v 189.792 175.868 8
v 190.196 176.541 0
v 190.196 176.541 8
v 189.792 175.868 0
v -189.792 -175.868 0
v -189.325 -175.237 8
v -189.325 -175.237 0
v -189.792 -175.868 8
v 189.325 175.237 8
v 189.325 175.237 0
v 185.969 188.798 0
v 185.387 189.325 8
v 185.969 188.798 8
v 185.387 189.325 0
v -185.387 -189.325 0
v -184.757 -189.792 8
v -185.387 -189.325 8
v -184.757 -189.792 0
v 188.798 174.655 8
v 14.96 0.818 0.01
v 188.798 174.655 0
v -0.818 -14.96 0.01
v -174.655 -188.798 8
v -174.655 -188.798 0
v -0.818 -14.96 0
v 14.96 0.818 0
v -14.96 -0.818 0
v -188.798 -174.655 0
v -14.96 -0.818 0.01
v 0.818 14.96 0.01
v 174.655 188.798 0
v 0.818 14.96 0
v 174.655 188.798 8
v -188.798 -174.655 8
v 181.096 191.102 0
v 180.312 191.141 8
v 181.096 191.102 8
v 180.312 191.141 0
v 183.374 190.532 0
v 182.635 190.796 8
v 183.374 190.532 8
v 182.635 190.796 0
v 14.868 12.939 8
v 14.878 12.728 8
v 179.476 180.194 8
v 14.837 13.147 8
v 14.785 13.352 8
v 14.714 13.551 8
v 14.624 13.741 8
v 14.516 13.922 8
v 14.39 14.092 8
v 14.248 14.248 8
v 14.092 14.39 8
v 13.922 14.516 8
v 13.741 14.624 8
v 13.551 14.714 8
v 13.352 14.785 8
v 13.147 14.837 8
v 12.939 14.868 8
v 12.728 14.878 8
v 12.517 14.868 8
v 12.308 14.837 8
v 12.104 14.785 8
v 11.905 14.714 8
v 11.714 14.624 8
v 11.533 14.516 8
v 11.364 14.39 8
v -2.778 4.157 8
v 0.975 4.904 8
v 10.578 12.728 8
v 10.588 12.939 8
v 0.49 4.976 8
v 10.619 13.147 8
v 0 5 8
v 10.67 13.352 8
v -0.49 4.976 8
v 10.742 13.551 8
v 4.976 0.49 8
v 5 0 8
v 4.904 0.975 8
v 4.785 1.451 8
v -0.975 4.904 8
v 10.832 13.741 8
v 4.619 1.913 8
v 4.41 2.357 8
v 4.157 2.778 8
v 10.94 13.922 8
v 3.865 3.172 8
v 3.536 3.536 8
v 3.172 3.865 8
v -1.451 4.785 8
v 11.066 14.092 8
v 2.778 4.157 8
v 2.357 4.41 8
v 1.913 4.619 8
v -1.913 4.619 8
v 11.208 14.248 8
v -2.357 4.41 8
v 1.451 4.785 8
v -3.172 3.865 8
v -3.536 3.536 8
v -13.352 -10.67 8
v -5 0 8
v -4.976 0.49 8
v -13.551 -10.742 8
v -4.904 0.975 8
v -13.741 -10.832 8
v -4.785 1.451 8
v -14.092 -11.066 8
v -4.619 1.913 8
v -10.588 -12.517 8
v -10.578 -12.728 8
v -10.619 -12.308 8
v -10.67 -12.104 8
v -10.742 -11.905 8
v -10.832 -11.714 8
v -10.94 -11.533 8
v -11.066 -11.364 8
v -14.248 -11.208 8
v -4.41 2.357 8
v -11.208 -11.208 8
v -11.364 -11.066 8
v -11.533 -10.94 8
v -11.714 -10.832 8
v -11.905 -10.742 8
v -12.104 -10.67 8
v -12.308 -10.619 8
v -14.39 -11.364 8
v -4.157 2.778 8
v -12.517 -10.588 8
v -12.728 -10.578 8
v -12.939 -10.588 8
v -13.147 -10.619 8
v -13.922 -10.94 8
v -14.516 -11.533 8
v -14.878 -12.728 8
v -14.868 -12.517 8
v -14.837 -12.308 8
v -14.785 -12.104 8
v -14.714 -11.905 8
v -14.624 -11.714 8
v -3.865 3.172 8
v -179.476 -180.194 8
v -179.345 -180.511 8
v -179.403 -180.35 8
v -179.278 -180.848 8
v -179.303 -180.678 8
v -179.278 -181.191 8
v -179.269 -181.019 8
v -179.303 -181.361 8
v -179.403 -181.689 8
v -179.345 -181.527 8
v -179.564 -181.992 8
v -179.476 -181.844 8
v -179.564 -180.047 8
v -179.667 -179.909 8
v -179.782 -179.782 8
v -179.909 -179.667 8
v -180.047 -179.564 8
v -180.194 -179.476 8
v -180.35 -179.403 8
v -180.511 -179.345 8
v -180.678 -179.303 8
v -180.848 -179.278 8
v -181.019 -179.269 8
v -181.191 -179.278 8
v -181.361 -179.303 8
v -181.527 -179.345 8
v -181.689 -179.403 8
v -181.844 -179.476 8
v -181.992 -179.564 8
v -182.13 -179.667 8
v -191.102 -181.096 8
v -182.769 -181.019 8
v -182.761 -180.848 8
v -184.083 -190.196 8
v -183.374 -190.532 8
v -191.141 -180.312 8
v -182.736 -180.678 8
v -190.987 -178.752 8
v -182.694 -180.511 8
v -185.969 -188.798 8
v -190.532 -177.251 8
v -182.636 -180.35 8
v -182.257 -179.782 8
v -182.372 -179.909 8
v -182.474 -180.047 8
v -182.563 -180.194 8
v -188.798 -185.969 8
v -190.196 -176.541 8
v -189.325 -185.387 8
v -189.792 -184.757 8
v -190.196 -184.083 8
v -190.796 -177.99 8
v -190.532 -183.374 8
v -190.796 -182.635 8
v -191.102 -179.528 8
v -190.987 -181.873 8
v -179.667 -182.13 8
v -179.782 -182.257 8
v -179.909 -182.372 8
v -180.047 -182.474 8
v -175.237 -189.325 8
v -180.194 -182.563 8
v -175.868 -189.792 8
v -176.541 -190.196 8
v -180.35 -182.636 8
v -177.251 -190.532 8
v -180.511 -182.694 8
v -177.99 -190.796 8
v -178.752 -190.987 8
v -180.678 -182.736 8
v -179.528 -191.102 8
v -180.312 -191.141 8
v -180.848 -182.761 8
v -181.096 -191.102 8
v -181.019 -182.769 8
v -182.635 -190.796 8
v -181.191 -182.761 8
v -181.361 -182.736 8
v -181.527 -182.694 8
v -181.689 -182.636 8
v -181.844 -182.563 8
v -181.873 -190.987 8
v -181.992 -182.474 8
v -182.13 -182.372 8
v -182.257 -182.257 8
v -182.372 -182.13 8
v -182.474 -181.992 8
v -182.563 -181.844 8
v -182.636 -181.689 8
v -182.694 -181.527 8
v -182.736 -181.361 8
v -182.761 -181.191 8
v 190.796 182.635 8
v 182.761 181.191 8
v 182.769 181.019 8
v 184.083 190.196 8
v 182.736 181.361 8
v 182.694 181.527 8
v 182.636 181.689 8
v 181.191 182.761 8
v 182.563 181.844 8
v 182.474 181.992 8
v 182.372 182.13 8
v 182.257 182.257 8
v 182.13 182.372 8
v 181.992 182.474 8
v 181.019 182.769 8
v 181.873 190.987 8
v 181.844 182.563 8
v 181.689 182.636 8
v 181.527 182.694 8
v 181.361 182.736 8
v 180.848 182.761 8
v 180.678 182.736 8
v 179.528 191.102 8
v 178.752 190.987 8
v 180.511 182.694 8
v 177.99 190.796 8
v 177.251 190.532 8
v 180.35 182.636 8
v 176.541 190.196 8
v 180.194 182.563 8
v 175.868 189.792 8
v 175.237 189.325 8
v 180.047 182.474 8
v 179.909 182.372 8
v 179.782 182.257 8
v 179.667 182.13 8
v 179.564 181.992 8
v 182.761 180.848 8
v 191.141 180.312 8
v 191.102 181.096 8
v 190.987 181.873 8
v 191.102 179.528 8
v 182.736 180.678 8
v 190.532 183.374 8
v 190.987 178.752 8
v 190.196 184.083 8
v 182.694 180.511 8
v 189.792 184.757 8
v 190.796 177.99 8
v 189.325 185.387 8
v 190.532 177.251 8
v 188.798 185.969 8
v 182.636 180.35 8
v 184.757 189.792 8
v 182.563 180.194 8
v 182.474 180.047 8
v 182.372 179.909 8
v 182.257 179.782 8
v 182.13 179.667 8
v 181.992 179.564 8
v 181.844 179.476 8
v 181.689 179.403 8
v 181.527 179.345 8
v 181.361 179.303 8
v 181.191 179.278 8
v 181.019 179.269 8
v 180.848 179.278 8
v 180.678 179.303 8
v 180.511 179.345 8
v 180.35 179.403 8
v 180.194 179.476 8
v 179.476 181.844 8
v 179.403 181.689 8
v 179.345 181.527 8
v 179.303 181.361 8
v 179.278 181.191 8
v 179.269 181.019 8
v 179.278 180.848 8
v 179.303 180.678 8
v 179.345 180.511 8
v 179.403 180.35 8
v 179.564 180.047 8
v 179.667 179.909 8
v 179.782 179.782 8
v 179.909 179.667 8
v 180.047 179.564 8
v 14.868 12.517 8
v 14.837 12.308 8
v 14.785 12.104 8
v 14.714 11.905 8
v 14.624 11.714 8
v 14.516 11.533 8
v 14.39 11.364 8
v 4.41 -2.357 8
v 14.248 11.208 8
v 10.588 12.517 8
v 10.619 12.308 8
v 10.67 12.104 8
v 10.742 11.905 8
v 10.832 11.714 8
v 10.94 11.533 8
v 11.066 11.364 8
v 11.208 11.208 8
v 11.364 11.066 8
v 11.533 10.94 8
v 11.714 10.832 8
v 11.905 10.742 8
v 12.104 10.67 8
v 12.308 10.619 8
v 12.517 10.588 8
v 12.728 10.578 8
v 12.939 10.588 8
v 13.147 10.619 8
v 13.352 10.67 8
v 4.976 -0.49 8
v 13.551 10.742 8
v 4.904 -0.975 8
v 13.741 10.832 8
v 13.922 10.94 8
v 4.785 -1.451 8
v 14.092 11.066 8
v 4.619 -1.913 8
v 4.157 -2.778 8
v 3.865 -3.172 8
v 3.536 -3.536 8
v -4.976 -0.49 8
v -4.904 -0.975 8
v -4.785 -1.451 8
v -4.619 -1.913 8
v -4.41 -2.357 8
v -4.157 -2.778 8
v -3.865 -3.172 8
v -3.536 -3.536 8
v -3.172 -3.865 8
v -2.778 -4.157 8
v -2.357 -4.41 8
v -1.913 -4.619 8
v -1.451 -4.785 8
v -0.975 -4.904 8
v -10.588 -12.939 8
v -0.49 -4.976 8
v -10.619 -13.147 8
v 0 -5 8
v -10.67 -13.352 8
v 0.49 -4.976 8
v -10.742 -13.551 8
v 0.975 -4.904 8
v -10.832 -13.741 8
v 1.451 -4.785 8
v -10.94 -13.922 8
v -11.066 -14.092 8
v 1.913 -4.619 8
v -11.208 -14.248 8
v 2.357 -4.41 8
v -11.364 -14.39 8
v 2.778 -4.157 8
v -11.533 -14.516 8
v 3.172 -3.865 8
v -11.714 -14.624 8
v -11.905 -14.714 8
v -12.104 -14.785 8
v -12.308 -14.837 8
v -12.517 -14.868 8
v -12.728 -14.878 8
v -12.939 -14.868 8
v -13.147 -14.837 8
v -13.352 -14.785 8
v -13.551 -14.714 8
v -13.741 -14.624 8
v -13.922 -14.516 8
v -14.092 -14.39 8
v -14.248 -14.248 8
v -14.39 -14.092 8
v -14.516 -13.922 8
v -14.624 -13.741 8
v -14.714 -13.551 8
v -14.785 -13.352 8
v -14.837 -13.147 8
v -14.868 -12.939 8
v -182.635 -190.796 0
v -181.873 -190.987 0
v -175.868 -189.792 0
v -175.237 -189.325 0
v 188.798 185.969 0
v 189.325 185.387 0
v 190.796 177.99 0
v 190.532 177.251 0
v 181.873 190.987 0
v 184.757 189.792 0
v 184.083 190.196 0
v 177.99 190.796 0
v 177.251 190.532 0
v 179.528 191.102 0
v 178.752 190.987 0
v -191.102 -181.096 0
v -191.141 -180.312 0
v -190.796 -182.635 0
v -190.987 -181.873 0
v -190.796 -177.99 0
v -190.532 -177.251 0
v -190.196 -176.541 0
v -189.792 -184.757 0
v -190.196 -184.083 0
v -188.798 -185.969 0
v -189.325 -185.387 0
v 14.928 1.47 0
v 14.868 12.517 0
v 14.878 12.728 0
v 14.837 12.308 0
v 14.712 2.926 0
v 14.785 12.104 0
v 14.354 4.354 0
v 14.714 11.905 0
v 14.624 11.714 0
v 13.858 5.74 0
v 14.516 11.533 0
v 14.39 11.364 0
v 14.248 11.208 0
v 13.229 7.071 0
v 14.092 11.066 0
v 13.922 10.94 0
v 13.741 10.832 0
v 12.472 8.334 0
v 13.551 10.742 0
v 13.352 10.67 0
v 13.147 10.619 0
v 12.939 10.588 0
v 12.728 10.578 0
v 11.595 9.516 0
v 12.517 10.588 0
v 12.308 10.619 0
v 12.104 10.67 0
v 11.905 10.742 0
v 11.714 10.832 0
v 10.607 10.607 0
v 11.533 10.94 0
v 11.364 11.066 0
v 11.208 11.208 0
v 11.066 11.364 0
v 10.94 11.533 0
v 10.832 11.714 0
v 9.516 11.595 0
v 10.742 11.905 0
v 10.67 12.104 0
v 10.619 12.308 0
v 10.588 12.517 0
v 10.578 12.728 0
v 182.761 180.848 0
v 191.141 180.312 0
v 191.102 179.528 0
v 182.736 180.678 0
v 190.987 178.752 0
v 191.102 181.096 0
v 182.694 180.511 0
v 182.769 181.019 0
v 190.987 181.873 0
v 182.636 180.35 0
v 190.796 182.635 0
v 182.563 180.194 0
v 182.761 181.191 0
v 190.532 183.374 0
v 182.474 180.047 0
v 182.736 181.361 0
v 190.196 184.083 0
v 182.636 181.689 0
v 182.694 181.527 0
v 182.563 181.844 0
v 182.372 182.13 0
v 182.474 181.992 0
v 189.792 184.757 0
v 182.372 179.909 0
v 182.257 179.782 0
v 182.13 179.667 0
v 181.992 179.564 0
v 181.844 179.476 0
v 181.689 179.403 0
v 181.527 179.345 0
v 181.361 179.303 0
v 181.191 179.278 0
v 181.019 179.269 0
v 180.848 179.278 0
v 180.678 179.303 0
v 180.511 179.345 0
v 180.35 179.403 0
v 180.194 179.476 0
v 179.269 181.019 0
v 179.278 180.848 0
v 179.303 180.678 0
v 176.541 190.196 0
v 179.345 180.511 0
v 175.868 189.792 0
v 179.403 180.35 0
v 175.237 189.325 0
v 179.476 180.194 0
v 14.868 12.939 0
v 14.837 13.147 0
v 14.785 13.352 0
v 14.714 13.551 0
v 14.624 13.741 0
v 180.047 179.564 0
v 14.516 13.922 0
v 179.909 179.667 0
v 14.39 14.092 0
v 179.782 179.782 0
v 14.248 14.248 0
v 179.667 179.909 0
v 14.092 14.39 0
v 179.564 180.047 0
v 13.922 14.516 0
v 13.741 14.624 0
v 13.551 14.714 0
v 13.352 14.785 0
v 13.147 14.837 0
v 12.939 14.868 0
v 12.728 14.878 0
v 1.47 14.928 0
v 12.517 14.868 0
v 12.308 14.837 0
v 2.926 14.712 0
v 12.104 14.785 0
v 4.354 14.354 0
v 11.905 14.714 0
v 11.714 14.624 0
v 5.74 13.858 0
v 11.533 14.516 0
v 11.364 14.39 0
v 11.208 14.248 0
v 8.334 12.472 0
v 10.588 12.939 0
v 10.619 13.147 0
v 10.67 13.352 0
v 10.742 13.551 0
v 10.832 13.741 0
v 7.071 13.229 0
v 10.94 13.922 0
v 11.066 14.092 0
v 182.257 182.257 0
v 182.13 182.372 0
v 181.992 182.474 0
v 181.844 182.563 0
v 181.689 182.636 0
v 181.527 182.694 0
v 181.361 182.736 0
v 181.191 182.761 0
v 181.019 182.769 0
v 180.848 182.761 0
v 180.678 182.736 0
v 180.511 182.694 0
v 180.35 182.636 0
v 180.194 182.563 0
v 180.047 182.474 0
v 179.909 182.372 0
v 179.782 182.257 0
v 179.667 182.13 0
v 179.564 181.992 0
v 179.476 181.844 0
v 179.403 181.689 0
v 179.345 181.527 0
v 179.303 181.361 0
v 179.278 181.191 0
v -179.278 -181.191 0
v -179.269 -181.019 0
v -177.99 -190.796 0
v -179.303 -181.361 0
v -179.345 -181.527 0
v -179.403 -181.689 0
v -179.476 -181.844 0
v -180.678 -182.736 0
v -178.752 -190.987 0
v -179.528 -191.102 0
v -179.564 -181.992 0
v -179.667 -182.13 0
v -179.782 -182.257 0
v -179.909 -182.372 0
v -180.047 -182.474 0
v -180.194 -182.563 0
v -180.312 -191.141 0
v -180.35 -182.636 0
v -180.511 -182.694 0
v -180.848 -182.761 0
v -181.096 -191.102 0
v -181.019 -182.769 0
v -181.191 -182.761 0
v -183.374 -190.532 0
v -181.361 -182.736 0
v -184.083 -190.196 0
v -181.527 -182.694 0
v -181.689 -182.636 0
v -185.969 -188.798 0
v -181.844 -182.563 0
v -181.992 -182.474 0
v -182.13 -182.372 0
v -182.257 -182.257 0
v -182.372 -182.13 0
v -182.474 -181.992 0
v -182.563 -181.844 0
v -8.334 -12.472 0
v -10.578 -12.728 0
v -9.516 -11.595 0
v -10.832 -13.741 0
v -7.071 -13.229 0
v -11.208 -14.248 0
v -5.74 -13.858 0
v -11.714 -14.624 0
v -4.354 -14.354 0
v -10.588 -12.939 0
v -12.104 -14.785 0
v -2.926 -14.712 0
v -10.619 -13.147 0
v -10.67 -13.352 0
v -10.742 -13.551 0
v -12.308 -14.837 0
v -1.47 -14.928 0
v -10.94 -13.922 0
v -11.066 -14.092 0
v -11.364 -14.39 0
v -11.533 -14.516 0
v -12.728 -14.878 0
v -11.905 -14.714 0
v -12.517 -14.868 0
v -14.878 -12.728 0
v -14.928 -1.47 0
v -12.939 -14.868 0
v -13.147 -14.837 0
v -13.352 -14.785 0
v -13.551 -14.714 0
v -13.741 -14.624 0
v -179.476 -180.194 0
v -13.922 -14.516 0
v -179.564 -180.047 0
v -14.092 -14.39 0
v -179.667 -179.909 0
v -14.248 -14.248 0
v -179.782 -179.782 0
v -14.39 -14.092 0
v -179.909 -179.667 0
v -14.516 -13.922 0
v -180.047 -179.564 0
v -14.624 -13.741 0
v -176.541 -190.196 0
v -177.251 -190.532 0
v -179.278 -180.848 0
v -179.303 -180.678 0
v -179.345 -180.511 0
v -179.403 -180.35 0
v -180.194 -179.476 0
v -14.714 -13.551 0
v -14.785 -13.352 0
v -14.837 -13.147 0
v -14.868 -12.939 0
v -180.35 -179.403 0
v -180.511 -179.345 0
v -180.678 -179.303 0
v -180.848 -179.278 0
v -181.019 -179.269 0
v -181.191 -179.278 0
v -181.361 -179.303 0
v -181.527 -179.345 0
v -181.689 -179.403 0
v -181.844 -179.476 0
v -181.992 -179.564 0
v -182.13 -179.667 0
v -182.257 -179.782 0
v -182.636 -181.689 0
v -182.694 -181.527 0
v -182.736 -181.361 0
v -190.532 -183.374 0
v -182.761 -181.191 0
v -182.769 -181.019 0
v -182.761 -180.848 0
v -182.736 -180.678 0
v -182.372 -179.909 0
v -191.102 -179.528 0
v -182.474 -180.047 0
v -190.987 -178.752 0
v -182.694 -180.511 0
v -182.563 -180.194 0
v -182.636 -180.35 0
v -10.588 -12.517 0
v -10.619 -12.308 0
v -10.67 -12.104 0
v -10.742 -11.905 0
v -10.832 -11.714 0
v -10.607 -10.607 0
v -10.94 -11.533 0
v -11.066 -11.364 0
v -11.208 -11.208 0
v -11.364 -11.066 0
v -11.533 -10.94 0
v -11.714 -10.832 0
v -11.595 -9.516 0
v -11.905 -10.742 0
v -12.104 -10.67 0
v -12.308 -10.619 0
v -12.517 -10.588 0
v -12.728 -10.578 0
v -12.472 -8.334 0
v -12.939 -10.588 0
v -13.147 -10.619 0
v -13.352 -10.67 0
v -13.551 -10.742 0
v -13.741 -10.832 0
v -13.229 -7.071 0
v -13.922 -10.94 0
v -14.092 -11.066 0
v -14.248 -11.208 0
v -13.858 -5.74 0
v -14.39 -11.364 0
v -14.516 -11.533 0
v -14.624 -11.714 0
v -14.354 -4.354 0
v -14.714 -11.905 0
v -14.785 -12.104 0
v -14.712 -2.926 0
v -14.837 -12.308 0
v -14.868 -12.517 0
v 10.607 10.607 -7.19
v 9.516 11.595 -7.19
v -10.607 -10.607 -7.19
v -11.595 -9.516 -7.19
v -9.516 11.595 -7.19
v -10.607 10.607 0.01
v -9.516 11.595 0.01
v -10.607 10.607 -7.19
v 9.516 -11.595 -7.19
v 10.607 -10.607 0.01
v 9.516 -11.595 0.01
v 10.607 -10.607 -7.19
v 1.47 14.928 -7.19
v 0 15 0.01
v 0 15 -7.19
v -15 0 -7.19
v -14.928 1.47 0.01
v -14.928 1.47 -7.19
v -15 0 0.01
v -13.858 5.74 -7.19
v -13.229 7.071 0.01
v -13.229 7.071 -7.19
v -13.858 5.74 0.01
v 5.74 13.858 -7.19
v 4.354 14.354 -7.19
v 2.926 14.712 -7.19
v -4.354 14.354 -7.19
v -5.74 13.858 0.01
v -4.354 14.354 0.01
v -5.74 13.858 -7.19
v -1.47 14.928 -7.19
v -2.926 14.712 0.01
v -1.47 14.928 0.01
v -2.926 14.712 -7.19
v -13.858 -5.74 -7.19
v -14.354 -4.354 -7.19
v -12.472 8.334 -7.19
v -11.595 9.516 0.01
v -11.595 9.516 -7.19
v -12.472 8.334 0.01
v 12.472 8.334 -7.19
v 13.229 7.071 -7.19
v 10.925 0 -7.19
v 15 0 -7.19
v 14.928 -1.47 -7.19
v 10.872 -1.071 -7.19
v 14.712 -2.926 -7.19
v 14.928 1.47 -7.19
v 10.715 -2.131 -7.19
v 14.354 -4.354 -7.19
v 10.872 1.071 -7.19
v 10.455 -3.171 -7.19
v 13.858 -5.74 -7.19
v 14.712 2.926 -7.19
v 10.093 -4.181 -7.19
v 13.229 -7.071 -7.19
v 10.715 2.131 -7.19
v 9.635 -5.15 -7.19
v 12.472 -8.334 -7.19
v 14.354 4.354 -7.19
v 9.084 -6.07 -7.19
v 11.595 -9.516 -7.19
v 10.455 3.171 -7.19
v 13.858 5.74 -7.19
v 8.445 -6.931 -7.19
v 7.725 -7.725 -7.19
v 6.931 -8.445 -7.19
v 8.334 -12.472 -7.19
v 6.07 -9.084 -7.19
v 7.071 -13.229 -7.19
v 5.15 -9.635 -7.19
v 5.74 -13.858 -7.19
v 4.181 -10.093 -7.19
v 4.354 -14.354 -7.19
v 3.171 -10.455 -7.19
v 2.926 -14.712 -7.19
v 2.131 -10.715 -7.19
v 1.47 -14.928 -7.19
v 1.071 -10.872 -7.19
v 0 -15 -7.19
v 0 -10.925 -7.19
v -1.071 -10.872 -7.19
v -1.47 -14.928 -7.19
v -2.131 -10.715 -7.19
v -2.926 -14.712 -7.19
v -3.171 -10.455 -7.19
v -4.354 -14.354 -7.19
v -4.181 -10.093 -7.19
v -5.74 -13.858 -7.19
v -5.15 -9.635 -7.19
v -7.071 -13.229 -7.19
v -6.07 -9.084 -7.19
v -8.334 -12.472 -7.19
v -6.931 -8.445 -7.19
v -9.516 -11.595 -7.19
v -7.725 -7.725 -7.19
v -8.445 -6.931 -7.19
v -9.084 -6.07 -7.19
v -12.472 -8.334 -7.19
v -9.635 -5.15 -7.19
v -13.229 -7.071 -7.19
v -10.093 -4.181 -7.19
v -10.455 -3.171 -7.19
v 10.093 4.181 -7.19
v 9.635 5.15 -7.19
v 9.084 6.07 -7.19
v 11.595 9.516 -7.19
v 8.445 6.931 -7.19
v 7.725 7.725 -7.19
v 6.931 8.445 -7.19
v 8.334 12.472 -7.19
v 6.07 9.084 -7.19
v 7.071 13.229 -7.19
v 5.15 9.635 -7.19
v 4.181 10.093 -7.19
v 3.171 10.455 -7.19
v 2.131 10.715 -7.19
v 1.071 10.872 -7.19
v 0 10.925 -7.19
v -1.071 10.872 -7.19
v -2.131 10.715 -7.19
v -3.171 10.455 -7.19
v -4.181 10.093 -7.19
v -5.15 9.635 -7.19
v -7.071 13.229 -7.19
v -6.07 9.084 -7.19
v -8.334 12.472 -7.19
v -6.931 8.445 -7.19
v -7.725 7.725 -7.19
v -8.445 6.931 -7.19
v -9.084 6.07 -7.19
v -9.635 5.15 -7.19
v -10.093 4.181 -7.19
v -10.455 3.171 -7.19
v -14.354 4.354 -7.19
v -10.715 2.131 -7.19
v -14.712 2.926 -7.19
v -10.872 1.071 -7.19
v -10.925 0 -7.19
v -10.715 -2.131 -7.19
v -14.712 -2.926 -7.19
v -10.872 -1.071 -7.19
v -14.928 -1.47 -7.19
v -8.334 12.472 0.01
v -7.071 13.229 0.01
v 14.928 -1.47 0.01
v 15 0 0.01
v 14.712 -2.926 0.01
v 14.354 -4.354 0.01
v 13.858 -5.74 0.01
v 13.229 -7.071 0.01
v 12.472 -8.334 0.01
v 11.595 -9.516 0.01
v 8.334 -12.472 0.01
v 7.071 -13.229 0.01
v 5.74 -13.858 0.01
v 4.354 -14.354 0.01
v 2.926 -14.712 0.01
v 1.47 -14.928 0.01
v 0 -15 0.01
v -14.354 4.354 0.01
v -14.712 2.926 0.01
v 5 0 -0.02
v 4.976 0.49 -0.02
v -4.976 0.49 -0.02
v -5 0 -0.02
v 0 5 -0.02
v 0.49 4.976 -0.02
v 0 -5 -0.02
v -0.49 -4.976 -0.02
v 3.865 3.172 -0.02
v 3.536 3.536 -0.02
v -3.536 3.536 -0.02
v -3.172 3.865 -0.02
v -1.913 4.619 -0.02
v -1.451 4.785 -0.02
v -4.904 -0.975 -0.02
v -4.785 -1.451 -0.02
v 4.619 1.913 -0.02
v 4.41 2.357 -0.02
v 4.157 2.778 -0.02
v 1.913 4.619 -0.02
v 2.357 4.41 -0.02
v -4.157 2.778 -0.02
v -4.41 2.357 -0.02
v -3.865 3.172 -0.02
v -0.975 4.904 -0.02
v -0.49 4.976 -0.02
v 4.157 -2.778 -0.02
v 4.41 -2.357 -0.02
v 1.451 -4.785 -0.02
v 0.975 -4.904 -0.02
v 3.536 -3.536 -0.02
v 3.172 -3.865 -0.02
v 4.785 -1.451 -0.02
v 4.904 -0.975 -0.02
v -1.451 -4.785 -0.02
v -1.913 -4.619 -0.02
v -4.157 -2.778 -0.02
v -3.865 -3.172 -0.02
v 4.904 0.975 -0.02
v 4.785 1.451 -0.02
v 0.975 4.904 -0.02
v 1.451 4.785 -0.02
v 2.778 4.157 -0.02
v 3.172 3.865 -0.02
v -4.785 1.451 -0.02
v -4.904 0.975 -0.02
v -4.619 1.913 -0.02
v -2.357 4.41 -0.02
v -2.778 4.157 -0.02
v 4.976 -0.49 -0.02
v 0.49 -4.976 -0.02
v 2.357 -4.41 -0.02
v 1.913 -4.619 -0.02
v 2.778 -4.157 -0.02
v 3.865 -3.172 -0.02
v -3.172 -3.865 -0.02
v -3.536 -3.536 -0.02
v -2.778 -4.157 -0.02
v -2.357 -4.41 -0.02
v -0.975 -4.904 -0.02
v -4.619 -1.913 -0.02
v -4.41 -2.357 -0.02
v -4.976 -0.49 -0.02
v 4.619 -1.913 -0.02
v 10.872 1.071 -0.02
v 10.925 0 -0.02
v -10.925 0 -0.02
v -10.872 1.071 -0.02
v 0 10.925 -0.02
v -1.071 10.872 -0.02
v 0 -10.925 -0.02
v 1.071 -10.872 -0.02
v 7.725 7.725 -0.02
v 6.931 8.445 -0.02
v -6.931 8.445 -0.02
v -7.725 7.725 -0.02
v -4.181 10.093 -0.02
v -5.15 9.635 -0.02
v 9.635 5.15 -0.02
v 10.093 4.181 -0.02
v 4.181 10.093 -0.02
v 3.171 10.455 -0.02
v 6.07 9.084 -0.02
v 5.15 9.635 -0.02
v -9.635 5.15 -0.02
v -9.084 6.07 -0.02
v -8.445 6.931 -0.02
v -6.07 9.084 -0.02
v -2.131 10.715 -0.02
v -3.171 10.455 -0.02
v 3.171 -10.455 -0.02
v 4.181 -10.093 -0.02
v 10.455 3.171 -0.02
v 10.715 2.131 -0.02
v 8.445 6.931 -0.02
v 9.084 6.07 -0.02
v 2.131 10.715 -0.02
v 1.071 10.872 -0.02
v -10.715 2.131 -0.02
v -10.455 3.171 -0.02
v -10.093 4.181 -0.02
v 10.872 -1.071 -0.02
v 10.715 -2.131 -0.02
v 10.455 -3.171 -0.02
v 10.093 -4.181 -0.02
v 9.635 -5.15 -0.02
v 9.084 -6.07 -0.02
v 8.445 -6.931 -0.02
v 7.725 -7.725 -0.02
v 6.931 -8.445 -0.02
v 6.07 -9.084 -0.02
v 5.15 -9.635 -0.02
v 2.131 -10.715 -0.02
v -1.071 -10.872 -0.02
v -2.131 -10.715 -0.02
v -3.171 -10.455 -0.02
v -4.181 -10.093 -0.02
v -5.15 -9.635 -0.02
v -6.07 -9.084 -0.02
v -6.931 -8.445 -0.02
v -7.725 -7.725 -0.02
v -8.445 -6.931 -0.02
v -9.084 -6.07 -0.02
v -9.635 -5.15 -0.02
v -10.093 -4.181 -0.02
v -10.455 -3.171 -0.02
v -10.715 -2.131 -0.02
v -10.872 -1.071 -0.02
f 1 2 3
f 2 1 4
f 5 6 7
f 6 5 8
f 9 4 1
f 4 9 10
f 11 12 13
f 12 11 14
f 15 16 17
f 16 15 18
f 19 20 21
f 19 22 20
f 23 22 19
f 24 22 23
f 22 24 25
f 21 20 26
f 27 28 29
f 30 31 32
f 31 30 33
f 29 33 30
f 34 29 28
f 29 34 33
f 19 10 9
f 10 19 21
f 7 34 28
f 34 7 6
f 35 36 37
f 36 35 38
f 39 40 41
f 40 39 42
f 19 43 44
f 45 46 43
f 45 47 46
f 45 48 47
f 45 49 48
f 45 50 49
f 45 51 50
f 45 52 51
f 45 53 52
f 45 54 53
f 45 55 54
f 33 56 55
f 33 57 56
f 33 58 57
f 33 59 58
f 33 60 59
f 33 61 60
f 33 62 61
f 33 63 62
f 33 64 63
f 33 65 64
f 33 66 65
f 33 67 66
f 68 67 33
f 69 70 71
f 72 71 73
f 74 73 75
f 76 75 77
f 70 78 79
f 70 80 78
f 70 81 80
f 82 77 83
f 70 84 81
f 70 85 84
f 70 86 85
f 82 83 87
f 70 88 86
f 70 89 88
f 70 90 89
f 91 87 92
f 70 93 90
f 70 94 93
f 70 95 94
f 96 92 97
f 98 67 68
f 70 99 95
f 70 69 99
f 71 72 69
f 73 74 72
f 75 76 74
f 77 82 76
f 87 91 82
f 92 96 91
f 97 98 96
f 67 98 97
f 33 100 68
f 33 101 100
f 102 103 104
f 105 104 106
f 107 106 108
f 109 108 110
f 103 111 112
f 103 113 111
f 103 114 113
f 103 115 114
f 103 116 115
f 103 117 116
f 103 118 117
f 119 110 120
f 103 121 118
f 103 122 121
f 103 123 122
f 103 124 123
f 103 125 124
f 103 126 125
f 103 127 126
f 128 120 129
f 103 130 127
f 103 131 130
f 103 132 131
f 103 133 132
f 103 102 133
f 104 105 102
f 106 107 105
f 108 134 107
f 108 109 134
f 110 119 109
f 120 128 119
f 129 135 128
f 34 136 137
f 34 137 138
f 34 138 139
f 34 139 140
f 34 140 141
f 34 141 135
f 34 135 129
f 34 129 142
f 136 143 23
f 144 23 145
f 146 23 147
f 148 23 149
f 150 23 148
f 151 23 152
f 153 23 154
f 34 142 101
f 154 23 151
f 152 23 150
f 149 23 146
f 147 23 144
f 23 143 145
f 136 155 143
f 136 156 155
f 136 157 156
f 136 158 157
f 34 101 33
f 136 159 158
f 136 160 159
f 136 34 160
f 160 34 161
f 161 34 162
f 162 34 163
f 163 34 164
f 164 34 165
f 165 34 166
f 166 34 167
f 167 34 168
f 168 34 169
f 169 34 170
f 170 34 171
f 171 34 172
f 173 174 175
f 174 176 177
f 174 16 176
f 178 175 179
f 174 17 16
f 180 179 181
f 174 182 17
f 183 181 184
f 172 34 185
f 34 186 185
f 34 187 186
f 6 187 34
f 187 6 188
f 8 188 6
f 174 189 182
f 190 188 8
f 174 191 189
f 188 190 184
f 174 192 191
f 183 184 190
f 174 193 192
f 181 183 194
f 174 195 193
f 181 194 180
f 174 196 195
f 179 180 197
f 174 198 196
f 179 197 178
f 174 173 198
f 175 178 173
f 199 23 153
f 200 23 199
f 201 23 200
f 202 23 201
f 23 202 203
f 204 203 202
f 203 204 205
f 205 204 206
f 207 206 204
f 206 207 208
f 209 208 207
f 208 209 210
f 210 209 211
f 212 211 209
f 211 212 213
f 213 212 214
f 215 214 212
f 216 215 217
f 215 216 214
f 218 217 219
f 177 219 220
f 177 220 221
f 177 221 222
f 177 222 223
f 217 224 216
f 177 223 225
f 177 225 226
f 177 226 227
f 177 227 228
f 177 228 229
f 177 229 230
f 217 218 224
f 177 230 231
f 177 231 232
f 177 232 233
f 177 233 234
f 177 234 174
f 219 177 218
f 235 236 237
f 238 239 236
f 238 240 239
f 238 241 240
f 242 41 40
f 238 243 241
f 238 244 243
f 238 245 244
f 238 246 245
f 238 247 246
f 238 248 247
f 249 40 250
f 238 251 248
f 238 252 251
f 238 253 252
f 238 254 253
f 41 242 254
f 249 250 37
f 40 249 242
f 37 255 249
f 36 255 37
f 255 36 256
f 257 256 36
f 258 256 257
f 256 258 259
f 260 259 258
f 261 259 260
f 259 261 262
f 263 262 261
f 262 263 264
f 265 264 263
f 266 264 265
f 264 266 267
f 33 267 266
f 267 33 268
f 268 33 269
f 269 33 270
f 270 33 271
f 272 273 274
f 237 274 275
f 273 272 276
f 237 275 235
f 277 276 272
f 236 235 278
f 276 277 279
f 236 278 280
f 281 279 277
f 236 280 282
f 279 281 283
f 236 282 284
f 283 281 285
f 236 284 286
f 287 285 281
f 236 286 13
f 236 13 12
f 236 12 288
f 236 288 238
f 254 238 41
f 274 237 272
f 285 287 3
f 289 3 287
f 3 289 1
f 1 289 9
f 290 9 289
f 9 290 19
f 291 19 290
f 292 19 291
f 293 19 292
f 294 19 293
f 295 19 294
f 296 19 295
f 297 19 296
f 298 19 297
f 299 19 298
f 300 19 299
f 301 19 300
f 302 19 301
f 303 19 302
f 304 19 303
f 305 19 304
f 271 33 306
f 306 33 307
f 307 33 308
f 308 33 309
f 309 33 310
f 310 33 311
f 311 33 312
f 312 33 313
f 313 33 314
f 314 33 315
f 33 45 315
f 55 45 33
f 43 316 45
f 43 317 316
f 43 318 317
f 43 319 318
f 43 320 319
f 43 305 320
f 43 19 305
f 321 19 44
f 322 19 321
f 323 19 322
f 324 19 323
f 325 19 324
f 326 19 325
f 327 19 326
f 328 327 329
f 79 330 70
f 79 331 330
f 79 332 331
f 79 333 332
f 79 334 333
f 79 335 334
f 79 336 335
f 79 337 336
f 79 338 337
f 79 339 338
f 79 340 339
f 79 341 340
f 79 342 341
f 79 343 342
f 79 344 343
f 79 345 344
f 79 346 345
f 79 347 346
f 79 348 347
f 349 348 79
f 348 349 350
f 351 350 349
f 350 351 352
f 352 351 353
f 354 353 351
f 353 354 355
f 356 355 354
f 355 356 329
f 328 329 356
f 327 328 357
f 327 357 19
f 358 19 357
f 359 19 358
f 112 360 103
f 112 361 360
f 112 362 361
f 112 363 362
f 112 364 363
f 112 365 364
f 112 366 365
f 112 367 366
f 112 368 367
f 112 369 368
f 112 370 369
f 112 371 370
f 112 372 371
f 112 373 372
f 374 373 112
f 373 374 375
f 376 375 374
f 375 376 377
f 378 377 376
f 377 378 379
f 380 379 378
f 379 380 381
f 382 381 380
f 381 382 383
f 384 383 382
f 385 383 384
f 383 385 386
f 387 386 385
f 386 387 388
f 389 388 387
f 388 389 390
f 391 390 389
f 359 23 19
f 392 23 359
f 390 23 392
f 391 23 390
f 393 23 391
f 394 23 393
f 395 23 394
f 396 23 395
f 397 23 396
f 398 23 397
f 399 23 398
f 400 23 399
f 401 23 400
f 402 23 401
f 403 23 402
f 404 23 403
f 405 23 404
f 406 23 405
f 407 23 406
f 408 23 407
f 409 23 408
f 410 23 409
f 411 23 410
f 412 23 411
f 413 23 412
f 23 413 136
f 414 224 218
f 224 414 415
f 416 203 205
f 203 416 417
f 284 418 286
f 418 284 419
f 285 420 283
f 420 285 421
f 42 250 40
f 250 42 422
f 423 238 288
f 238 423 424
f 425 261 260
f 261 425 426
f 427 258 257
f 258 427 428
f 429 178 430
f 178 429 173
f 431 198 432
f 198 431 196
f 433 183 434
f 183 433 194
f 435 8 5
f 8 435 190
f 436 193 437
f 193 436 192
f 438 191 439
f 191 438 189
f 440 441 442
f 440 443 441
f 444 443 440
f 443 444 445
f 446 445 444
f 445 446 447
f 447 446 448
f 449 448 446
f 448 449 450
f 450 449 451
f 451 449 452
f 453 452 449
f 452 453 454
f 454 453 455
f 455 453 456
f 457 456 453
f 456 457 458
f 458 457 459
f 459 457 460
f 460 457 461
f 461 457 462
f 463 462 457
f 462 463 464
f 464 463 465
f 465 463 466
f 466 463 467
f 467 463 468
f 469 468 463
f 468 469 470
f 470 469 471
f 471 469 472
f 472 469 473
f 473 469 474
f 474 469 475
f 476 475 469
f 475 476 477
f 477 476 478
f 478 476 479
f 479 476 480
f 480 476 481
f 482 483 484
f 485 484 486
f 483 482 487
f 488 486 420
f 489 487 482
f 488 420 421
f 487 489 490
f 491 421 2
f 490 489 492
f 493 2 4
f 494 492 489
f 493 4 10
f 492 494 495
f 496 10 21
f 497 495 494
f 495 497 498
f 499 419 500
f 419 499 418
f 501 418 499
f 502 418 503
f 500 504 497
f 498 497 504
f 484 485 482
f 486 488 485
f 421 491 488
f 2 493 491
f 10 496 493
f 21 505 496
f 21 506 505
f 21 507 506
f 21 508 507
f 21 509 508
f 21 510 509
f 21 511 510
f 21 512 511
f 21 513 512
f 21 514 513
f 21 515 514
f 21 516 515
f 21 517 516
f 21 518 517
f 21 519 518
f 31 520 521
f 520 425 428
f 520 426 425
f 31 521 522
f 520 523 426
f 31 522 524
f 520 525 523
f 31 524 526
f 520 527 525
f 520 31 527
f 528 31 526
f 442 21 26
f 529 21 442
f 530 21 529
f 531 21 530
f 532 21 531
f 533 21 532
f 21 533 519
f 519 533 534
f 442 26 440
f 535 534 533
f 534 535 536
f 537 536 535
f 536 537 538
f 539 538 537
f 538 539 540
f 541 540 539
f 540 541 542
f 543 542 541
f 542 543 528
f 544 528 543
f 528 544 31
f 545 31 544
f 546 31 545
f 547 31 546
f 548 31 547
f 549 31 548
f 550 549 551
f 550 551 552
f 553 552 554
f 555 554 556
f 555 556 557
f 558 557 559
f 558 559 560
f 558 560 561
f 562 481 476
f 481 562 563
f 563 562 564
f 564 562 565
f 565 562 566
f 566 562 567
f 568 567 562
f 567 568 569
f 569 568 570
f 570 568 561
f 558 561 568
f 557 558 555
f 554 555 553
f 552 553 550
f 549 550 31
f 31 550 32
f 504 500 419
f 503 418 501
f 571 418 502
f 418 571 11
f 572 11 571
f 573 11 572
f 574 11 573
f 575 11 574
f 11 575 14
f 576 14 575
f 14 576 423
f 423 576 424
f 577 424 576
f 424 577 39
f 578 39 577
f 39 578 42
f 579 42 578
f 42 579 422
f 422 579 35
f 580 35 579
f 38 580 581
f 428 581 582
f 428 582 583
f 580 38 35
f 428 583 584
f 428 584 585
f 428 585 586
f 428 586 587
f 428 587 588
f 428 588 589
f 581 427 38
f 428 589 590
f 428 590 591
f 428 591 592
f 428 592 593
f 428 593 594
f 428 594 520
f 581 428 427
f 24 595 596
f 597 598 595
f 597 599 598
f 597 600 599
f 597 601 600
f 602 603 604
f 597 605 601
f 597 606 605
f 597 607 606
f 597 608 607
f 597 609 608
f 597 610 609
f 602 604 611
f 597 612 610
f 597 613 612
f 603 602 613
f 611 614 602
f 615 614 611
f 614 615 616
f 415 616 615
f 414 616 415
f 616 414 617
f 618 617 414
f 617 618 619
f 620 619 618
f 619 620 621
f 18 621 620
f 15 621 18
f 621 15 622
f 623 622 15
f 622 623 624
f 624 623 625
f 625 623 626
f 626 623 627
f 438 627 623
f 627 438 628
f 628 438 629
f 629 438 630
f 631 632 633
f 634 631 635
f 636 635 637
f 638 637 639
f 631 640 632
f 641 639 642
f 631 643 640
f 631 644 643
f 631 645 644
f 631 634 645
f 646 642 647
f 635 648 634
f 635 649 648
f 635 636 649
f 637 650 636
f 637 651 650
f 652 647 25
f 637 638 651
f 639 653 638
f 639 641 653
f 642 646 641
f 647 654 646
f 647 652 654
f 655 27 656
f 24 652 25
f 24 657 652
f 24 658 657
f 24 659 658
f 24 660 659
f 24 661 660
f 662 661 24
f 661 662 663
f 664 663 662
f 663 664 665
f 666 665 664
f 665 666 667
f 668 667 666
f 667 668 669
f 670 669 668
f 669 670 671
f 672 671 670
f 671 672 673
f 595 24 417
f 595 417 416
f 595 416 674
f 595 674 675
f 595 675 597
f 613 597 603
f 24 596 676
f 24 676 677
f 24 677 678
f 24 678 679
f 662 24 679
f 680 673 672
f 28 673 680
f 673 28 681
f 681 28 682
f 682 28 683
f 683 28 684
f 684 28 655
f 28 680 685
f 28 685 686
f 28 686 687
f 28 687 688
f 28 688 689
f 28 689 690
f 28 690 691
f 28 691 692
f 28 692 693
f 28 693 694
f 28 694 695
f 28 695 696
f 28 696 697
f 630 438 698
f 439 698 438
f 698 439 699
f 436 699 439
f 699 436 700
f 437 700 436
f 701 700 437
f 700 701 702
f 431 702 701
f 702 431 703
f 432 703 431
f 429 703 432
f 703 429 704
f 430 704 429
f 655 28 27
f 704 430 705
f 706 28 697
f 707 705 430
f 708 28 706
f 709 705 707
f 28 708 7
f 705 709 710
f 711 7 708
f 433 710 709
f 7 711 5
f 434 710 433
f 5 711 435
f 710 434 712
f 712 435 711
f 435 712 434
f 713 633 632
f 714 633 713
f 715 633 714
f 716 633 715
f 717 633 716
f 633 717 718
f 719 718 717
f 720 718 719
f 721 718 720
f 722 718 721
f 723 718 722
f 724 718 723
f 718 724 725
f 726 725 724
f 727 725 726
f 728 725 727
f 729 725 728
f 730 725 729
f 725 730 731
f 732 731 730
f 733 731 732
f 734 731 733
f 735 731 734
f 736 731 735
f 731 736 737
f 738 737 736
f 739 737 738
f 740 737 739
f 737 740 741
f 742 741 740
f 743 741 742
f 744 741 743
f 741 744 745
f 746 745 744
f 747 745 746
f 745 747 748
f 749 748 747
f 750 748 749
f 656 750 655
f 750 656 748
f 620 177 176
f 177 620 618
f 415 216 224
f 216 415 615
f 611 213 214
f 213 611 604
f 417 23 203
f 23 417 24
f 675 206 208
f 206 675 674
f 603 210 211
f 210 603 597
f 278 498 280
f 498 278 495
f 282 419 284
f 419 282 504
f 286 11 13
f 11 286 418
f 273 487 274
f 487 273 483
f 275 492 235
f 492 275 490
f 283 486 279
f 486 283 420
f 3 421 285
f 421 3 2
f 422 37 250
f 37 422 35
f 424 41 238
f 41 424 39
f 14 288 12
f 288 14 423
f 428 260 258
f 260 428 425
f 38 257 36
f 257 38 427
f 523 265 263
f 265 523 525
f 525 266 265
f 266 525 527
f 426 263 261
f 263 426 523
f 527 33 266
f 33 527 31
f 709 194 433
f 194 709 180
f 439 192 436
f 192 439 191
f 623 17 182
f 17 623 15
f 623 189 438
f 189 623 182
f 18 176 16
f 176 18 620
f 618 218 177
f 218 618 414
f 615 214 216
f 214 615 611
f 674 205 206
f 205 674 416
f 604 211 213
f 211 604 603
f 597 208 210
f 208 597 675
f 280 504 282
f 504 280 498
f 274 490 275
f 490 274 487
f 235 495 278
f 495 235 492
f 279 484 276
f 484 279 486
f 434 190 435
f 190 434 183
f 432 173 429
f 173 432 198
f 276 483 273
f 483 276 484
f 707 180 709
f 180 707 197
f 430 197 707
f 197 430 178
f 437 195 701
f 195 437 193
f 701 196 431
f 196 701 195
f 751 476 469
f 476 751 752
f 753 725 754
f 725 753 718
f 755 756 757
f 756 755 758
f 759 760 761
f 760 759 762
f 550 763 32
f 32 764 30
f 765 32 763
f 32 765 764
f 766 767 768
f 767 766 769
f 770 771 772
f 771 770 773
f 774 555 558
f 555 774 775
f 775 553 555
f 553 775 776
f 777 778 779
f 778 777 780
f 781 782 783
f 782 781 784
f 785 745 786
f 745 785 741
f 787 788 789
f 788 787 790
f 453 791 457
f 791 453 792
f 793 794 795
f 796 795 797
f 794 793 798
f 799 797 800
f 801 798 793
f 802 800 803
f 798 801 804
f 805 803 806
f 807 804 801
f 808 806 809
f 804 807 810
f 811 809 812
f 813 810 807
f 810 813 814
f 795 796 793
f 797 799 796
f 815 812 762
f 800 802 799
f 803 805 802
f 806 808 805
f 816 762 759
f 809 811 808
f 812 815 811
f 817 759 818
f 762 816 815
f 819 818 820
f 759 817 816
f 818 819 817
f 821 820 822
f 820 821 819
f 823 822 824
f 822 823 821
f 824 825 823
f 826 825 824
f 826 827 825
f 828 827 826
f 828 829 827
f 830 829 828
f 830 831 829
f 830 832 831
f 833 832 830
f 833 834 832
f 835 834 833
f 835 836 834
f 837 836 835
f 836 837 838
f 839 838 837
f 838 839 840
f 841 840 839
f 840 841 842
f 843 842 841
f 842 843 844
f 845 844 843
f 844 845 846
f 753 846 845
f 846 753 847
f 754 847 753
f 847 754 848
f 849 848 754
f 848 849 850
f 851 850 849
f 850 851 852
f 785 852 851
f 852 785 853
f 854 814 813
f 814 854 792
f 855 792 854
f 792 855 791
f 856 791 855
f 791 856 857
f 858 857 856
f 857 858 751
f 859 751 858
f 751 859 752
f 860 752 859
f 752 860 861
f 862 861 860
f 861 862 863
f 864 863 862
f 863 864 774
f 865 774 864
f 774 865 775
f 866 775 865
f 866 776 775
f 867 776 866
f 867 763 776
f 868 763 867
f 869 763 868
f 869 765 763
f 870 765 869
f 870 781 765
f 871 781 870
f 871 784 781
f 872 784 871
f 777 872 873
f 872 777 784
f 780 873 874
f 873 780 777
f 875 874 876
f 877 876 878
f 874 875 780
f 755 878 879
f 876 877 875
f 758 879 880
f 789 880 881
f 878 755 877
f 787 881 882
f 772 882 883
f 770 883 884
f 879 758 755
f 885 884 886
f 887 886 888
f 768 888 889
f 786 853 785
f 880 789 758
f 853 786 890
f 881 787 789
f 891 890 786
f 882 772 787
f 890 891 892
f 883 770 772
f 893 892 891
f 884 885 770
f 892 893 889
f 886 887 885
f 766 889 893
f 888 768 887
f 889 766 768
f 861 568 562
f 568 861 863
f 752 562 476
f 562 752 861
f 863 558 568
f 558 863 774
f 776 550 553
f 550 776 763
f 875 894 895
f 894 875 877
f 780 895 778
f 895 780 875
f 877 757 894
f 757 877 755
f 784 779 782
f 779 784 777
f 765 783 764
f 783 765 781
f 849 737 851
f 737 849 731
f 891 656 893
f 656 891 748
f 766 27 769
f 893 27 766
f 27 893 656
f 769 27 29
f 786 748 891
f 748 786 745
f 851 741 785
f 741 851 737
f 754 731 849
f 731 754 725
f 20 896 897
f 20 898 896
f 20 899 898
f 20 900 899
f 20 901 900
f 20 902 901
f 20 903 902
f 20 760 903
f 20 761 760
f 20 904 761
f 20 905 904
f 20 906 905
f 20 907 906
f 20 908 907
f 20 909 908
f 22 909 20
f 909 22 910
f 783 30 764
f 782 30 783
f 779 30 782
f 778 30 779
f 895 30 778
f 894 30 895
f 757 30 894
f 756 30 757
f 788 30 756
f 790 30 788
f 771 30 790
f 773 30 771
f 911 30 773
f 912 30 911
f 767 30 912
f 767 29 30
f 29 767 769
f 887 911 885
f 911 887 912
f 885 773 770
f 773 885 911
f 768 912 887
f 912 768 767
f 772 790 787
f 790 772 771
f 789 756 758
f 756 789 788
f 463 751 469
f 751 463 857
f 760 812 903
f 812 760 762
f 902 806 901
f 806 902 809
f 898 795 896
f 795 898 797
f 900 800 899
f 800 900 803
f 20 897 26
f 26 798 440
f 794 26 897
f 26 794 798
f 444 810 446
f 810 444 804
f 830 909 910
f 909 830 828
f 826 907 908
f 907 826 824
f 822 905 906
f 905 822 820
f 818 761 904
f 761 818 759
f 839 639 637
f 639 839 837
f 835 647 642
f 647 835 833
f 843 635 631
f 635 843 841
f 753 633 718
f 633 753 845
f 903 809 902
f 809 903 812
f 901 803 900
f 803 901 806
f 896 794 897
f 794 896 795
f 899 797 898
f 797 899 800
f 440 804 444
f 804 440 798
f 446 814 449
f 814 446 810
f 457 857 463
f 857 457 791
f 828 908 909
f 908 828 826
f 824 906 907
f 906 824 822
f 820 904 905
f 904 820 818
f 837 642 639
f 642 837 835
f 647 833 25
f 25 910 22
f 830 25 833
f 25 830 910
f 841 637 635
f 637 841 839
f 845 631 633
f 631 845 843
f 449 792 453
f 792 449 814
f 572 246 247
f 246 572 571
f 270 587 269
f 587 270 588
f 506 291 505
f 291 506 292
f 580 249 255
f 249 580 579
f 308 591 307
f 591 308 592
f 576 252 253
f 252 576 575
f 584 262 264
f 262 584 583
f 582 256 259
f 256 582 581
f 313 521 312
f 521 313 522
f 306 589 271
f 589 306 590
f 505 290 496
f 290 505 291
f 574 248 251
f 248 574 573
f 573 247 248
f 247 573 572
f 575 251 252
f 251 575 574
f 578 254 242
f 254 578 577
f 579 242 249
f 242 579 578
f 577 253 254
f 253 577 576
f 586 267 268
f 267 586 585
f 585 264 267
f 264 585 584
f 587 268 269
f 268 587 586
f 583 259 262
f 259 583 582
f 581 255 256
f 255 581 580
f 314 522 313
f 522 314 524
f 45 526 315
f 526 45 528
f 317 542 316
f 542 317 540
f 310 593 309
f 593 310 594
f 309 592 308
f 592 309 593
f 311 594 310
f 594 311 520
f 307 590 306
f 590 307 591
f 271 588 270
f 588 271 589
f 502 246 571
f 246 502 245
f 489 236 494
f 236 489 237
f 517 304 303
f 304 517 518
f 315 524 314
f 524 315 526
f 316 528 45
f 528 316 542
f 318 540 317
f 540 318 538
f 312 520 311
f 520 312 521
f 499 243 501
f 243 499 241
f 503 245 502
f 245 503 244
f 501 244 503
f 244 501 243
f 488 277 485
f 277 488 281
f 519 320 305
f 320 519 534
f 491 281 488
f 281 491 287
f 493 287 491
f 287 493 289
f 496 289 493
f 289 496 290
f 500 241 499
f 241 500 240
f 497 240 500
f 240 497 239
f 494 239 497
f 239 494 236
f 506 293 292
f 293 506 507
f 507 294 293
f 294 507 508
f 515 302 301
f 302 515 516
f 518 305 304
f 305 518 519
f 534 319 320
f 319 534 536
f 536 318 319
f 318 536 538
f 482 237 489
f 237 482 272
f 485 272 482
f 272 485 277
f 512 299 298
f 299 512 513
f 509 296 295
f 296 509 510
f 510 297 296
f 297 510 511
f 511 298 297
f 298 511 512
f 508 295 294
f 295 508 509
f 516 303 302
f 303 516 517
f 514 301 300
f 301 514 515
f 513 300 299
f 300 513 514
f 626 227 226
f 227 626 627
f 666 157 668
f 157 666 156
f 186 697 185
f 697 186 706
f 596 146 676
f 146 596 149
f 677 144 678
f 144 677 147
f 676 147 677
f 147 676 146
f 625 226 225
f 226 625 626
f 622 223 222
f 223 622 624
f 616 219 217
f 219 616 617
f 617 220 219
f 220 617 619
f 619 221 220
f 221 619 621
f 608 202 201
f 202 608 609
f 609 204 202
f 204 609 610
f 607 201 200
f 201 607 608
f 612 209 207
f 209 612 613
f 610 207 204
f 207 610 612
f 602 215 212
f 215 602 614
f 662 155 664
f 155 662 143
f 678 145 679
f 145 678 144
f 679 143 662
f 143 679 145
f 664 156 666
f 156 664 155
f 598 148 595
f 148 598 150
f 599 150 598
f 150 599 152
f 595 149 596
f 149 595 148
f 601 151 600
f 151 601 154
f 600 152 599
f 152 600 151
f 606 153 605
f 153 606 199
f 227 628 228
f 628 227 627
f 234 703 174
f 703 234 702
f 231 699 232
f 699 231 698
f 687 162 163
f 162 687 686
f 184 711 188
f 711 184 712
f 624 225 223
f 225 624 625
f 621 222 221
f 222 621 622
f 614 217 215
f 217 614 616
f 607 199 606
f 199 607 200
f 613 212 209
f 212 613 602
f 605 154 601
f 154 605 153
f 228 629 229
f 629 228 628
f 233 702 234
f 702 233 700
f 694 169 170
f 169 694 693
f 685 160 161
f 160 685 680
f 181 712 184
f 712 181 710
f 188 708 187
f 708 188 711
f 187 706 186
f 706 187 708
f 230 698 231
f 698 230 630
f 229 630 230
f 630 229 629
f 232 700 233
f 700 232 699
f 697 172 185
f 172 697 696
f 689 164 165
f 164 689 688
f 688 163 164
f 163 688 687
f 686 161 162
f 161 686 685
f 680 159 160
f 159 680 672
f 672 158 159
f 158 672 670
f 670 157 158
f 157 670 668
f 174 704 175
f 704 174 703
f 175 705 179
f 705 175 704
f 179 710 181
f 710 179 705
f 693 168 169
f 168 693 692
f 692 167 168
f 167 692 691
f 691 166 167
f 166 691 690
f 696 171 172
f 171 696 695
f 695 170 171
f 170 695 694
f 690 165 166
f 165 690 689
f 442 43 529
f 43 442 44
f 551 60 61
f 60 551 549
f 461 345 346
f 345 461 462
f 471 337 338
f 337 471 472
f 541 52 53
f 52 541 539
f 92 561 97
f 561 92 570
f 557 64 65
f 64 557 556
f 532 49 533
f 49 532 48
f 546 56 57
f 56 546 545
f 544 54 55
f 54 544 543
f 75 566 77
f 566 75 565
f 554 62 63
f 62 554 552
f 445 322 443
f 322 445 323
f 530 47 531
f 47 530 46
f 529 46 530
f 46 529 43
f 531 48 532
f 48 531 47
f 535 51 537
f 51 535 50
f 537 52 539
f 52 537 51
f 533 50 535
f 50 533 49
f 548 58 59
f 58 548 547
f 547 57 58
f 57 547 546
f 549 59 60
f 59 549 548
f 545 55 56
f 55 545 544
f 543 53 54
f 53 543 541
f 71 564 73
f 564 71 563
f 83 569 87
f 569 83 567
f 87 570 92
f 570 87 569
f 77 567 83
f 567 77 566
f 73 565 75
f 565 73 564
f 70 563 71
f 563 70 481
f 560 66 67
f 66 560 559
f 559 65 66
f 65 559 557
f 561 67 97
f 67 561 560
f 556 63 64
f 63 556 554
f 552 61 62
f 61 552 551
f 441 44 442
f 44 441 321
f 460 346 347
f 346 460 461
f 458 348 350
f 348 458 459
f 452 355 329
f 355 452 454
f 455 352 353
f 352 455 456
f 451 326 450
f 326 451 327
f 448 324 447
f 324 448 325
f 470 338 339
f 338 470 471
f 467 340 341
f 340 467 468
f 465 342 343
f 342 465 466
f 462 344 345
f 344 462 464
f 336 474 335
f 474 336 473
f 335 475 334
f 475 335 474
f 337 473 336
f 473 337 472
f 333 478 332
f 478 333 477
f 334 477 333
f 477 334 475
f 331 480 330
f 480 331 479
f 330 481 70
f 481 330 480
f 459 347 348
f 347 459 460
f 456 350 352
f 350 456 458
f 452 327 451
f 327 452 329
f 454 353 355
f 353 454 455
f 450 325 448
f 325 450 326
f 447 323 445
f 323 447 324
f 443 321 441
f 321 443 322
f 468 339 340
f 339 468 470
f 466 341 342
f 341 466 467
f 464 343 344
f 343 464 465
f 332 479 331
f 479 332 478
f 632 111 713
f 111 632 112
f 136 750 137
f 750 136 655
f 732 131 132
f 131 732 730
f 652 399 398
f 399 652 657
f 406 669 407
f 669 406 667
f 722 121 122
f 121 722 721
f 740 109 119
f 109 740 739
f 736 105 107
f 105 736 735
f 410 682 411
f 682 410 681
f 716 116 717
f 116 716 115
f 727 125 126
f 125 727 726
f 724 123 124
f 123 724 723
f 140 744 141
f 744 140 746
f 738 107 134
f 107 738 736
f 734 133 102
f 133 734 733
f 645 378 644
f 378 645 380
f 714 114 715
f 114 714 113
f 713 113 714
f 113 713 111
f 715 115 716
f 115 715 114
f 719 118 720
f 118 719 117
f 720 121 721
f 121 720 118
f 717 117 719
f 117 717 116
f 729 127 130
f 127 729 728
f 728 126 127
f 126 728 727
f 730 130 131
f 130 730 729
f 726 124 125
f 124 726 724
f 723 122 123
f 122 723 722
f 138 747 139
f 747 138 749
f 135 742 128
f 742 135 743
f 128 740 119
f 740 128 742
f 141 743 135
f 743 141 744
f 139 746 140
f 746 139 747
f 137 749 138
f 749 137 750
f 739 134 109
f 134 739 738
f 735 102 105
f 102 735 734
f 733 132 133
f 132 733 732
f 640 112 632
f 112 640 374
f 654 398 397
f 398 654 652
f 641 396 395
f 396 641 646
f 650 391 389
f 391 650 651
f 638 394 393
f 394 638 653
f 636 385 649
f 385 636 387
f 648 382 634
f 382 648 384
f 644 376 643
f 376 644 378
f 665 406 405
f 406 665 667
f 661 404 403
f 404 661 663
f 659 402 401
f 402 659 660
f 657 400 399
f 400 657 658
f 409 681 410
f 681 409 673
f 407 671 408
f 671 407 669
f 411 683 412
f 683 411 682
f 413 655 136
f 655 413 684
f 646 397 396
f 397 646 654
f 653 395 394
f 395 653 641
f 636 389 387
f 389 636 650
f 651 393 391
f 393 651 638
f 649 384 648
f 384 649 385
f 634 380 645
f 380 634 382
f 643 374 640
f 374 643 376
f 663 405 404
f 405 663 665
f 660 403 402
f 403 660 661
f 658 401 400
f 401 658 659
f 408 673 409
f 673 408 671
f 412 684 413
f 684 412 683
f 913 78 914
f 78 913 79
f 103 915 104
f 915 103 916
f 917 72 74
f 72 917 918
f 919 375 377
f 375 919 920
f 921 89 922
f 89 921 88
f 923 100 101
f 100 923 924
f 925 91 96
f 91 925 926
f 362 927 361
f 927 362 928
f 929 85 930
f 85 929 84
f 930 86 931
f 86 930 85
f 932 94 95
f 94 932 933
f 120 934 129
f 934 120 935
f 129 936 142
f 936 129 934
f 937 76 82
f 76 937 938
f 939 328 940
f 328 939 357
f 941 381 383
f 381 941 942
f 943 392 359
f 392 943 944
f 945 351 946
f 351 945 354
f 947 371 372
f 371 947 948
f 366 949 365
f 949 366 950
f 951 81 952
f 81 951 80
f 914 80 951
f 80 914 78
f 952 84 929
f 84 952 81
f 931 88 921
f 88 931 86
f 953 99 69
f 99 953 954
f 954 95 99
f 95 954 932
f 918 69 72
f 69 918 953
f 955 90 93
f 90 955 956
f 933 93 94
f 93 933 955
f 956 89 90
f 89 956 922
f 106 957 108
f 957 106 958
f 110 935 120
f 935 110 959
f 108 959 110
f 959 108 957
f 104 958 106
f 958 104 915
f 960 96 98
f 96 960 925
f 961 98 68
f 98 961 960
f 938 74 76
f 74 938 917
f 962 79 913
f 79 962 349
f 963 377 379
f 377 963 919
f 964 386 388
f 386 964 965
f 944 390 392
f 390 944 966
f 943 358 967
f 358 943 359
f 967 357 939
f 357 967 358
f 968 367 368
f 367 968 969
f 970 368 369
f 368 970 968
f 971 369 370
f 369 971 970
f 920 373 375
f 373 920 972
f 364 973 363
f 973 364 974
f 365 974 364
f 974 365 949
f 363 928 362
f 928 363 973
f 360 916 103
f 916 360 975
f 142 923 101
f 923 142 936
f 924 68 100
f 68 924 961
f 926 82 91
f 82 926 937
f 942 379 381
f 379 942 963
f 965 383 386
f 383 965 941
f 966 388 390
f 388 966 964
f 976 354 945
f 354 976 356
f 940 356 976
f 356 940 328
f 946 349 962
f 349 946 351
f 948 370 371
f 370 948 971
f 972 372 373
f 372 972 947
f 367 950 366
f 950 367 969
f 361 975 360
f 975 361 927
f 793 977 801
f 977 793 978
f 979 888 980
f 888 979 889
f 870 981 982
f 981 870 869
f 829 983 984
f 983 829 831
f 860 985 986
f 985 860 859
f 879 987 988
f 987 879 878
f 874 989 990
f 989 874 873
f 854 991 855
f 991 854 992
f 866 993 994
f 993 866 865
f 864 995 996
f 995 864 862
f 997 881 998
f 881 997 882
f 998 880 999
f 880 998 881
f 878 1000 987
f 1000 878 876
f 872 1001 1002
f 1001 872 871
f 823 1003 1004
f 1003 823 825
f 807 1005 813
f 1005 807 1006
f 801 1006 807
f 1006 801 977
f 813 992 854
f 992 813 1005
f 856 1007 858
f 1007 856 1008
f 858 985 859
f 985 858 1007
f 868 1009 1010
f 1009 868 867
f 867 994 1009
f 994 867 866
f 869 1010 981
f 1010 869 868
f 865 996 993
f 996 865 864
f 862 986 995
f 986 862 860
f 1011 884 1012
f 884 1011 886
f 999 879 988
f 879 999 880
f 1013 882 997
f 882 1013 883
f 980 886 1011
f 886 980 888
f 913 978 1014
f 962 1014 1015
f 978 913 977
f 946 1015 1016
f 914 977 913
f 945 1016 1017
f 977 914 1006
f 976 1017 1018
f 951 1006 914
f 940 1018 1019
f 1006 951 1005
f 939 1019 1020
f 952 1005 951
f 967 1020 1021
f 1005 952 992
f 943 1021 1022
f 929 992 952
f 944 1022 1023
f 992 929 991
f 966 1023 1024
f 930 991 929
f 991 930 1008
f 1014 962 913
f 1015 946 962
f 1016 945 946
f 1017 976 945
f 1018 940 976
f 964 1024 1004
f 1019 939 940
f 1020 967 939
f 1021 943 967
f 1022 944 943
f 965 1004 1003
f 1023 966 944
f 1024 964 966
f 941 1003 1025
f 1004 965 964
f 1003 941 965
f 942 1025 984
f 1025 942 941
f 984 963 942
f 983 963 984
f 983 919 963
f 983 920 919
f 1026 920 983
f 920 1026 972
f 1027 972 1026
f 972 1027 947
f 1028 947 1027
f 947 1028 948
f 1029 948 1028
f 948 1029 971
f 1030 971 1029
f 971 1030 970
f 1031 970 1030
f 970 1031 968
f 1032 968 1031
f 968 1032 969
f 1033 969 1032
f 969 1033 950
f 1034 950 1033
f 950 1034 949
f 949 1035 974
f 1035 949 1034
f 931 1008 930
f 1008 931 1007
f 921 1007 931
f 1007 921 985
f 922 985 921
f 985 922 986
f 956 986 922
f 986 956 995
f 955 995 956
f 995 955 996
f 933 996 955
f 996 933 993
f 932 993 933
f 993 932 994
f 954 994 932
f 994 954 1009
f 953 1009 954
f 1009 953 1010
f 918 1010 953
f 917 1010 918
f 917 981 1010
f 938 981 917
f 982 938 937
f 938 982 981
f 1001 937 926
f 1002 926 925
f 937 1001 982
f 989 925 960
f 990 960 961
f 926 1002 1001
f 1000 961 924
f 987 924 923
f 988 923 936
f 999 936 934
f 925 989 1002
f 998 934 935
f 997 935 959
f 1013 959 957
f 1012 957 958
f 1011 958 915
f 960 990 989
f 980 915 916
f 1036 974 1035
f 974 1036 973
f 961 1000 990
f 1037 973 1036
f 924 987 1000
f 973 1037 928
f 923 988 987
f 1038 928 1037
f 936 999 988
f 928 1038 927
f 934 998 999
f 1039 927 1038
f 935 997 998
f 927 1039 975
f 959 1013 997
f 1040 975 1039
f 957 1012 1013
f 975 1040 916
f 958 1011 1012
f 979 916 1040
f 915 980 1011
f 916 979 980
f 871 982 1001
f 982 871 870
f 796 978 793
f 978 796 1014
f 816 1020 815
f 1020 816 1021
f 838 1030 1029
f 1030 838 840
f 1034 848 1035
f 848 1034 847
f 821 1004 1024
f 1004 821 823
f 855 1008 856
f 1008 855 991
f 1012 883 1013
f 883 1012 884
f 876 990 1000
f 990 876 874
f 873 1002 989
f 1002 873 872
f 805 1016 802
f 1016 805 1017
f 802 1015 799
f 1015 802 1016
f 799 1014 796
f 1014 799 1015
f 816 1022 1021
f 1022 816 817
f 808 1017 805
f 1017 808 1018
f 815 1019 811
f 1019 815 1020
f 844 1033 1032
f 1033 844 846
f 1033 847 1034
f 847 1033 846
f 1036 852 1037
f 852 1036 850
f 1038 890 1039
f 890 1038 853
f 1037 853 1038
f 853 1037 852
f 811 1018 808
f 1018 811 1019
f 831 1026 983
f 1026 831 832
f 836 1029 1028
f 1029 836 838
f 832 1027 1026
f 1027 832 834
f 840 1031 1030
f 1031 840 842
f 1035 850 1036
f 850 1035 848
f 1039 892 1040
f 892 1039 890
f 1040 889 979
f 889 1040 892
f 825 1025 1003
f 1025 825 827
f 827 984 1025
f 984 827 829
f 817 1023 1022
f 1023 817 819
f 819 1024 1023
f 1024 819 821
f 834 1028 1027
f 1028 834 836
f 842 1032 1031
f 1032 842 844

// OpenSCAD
// Gen-DW — front BEARING BRIDGE (bar endbell, 2026-10-10): a 608 boss on a 20 mm wide bar that spans the
// two frame rods at 45 deg and 45+180 deg (R = flange_bolt_r). The front bridge uses the rods at 45/225 deg, the rear
// bridge the rods at 135/315 deg, so the two bridges cross at 90 deg and the stator is held at 4 points.
// A bar instead of a full disc is what lets this big-ring kit fit ONE 410 mm plate. Print flat face DOWN (boss up, no supports).
// Brace holes (temporary M4 jack rods, R = brace_r) sit on the bar axis.
include <parameters.scad>;
$fn = 64;
bar_w = 20;
bar_len = 2 * (flange_bolt_r + 9);
module bar_2d() { offset(r=8) offset(delta=-8) square([bar_len, bar_w], center=true); }
difference() {
    rotate([0, 0, 45]) union() {
        linear_extrude(endbell_thick) bar_2d();
        translate([0, 0, -bearing_h + 0.01]) cylinder(d=30, h=bearing_h);
    }
    translate([0, 0, -bearing_h - 0.1]) cylinder(d=endbell_shaft_clear, h=50);
    translate([0, 0, -bearing_h - 0.02]) cylinder(d=bearing_d, h=bearing_h);
    for (s = [0, 180]) rotate([0, 0, 45 + s]) translate([flange_bolt_r, 0, -20]) cylinder(d=m3_clear, h=60);
    for (a = brace_angles) translate([brace_r*cos(a), brace_r*sin(a), -20]) cylinder(d=brace_d, h=50);
}
